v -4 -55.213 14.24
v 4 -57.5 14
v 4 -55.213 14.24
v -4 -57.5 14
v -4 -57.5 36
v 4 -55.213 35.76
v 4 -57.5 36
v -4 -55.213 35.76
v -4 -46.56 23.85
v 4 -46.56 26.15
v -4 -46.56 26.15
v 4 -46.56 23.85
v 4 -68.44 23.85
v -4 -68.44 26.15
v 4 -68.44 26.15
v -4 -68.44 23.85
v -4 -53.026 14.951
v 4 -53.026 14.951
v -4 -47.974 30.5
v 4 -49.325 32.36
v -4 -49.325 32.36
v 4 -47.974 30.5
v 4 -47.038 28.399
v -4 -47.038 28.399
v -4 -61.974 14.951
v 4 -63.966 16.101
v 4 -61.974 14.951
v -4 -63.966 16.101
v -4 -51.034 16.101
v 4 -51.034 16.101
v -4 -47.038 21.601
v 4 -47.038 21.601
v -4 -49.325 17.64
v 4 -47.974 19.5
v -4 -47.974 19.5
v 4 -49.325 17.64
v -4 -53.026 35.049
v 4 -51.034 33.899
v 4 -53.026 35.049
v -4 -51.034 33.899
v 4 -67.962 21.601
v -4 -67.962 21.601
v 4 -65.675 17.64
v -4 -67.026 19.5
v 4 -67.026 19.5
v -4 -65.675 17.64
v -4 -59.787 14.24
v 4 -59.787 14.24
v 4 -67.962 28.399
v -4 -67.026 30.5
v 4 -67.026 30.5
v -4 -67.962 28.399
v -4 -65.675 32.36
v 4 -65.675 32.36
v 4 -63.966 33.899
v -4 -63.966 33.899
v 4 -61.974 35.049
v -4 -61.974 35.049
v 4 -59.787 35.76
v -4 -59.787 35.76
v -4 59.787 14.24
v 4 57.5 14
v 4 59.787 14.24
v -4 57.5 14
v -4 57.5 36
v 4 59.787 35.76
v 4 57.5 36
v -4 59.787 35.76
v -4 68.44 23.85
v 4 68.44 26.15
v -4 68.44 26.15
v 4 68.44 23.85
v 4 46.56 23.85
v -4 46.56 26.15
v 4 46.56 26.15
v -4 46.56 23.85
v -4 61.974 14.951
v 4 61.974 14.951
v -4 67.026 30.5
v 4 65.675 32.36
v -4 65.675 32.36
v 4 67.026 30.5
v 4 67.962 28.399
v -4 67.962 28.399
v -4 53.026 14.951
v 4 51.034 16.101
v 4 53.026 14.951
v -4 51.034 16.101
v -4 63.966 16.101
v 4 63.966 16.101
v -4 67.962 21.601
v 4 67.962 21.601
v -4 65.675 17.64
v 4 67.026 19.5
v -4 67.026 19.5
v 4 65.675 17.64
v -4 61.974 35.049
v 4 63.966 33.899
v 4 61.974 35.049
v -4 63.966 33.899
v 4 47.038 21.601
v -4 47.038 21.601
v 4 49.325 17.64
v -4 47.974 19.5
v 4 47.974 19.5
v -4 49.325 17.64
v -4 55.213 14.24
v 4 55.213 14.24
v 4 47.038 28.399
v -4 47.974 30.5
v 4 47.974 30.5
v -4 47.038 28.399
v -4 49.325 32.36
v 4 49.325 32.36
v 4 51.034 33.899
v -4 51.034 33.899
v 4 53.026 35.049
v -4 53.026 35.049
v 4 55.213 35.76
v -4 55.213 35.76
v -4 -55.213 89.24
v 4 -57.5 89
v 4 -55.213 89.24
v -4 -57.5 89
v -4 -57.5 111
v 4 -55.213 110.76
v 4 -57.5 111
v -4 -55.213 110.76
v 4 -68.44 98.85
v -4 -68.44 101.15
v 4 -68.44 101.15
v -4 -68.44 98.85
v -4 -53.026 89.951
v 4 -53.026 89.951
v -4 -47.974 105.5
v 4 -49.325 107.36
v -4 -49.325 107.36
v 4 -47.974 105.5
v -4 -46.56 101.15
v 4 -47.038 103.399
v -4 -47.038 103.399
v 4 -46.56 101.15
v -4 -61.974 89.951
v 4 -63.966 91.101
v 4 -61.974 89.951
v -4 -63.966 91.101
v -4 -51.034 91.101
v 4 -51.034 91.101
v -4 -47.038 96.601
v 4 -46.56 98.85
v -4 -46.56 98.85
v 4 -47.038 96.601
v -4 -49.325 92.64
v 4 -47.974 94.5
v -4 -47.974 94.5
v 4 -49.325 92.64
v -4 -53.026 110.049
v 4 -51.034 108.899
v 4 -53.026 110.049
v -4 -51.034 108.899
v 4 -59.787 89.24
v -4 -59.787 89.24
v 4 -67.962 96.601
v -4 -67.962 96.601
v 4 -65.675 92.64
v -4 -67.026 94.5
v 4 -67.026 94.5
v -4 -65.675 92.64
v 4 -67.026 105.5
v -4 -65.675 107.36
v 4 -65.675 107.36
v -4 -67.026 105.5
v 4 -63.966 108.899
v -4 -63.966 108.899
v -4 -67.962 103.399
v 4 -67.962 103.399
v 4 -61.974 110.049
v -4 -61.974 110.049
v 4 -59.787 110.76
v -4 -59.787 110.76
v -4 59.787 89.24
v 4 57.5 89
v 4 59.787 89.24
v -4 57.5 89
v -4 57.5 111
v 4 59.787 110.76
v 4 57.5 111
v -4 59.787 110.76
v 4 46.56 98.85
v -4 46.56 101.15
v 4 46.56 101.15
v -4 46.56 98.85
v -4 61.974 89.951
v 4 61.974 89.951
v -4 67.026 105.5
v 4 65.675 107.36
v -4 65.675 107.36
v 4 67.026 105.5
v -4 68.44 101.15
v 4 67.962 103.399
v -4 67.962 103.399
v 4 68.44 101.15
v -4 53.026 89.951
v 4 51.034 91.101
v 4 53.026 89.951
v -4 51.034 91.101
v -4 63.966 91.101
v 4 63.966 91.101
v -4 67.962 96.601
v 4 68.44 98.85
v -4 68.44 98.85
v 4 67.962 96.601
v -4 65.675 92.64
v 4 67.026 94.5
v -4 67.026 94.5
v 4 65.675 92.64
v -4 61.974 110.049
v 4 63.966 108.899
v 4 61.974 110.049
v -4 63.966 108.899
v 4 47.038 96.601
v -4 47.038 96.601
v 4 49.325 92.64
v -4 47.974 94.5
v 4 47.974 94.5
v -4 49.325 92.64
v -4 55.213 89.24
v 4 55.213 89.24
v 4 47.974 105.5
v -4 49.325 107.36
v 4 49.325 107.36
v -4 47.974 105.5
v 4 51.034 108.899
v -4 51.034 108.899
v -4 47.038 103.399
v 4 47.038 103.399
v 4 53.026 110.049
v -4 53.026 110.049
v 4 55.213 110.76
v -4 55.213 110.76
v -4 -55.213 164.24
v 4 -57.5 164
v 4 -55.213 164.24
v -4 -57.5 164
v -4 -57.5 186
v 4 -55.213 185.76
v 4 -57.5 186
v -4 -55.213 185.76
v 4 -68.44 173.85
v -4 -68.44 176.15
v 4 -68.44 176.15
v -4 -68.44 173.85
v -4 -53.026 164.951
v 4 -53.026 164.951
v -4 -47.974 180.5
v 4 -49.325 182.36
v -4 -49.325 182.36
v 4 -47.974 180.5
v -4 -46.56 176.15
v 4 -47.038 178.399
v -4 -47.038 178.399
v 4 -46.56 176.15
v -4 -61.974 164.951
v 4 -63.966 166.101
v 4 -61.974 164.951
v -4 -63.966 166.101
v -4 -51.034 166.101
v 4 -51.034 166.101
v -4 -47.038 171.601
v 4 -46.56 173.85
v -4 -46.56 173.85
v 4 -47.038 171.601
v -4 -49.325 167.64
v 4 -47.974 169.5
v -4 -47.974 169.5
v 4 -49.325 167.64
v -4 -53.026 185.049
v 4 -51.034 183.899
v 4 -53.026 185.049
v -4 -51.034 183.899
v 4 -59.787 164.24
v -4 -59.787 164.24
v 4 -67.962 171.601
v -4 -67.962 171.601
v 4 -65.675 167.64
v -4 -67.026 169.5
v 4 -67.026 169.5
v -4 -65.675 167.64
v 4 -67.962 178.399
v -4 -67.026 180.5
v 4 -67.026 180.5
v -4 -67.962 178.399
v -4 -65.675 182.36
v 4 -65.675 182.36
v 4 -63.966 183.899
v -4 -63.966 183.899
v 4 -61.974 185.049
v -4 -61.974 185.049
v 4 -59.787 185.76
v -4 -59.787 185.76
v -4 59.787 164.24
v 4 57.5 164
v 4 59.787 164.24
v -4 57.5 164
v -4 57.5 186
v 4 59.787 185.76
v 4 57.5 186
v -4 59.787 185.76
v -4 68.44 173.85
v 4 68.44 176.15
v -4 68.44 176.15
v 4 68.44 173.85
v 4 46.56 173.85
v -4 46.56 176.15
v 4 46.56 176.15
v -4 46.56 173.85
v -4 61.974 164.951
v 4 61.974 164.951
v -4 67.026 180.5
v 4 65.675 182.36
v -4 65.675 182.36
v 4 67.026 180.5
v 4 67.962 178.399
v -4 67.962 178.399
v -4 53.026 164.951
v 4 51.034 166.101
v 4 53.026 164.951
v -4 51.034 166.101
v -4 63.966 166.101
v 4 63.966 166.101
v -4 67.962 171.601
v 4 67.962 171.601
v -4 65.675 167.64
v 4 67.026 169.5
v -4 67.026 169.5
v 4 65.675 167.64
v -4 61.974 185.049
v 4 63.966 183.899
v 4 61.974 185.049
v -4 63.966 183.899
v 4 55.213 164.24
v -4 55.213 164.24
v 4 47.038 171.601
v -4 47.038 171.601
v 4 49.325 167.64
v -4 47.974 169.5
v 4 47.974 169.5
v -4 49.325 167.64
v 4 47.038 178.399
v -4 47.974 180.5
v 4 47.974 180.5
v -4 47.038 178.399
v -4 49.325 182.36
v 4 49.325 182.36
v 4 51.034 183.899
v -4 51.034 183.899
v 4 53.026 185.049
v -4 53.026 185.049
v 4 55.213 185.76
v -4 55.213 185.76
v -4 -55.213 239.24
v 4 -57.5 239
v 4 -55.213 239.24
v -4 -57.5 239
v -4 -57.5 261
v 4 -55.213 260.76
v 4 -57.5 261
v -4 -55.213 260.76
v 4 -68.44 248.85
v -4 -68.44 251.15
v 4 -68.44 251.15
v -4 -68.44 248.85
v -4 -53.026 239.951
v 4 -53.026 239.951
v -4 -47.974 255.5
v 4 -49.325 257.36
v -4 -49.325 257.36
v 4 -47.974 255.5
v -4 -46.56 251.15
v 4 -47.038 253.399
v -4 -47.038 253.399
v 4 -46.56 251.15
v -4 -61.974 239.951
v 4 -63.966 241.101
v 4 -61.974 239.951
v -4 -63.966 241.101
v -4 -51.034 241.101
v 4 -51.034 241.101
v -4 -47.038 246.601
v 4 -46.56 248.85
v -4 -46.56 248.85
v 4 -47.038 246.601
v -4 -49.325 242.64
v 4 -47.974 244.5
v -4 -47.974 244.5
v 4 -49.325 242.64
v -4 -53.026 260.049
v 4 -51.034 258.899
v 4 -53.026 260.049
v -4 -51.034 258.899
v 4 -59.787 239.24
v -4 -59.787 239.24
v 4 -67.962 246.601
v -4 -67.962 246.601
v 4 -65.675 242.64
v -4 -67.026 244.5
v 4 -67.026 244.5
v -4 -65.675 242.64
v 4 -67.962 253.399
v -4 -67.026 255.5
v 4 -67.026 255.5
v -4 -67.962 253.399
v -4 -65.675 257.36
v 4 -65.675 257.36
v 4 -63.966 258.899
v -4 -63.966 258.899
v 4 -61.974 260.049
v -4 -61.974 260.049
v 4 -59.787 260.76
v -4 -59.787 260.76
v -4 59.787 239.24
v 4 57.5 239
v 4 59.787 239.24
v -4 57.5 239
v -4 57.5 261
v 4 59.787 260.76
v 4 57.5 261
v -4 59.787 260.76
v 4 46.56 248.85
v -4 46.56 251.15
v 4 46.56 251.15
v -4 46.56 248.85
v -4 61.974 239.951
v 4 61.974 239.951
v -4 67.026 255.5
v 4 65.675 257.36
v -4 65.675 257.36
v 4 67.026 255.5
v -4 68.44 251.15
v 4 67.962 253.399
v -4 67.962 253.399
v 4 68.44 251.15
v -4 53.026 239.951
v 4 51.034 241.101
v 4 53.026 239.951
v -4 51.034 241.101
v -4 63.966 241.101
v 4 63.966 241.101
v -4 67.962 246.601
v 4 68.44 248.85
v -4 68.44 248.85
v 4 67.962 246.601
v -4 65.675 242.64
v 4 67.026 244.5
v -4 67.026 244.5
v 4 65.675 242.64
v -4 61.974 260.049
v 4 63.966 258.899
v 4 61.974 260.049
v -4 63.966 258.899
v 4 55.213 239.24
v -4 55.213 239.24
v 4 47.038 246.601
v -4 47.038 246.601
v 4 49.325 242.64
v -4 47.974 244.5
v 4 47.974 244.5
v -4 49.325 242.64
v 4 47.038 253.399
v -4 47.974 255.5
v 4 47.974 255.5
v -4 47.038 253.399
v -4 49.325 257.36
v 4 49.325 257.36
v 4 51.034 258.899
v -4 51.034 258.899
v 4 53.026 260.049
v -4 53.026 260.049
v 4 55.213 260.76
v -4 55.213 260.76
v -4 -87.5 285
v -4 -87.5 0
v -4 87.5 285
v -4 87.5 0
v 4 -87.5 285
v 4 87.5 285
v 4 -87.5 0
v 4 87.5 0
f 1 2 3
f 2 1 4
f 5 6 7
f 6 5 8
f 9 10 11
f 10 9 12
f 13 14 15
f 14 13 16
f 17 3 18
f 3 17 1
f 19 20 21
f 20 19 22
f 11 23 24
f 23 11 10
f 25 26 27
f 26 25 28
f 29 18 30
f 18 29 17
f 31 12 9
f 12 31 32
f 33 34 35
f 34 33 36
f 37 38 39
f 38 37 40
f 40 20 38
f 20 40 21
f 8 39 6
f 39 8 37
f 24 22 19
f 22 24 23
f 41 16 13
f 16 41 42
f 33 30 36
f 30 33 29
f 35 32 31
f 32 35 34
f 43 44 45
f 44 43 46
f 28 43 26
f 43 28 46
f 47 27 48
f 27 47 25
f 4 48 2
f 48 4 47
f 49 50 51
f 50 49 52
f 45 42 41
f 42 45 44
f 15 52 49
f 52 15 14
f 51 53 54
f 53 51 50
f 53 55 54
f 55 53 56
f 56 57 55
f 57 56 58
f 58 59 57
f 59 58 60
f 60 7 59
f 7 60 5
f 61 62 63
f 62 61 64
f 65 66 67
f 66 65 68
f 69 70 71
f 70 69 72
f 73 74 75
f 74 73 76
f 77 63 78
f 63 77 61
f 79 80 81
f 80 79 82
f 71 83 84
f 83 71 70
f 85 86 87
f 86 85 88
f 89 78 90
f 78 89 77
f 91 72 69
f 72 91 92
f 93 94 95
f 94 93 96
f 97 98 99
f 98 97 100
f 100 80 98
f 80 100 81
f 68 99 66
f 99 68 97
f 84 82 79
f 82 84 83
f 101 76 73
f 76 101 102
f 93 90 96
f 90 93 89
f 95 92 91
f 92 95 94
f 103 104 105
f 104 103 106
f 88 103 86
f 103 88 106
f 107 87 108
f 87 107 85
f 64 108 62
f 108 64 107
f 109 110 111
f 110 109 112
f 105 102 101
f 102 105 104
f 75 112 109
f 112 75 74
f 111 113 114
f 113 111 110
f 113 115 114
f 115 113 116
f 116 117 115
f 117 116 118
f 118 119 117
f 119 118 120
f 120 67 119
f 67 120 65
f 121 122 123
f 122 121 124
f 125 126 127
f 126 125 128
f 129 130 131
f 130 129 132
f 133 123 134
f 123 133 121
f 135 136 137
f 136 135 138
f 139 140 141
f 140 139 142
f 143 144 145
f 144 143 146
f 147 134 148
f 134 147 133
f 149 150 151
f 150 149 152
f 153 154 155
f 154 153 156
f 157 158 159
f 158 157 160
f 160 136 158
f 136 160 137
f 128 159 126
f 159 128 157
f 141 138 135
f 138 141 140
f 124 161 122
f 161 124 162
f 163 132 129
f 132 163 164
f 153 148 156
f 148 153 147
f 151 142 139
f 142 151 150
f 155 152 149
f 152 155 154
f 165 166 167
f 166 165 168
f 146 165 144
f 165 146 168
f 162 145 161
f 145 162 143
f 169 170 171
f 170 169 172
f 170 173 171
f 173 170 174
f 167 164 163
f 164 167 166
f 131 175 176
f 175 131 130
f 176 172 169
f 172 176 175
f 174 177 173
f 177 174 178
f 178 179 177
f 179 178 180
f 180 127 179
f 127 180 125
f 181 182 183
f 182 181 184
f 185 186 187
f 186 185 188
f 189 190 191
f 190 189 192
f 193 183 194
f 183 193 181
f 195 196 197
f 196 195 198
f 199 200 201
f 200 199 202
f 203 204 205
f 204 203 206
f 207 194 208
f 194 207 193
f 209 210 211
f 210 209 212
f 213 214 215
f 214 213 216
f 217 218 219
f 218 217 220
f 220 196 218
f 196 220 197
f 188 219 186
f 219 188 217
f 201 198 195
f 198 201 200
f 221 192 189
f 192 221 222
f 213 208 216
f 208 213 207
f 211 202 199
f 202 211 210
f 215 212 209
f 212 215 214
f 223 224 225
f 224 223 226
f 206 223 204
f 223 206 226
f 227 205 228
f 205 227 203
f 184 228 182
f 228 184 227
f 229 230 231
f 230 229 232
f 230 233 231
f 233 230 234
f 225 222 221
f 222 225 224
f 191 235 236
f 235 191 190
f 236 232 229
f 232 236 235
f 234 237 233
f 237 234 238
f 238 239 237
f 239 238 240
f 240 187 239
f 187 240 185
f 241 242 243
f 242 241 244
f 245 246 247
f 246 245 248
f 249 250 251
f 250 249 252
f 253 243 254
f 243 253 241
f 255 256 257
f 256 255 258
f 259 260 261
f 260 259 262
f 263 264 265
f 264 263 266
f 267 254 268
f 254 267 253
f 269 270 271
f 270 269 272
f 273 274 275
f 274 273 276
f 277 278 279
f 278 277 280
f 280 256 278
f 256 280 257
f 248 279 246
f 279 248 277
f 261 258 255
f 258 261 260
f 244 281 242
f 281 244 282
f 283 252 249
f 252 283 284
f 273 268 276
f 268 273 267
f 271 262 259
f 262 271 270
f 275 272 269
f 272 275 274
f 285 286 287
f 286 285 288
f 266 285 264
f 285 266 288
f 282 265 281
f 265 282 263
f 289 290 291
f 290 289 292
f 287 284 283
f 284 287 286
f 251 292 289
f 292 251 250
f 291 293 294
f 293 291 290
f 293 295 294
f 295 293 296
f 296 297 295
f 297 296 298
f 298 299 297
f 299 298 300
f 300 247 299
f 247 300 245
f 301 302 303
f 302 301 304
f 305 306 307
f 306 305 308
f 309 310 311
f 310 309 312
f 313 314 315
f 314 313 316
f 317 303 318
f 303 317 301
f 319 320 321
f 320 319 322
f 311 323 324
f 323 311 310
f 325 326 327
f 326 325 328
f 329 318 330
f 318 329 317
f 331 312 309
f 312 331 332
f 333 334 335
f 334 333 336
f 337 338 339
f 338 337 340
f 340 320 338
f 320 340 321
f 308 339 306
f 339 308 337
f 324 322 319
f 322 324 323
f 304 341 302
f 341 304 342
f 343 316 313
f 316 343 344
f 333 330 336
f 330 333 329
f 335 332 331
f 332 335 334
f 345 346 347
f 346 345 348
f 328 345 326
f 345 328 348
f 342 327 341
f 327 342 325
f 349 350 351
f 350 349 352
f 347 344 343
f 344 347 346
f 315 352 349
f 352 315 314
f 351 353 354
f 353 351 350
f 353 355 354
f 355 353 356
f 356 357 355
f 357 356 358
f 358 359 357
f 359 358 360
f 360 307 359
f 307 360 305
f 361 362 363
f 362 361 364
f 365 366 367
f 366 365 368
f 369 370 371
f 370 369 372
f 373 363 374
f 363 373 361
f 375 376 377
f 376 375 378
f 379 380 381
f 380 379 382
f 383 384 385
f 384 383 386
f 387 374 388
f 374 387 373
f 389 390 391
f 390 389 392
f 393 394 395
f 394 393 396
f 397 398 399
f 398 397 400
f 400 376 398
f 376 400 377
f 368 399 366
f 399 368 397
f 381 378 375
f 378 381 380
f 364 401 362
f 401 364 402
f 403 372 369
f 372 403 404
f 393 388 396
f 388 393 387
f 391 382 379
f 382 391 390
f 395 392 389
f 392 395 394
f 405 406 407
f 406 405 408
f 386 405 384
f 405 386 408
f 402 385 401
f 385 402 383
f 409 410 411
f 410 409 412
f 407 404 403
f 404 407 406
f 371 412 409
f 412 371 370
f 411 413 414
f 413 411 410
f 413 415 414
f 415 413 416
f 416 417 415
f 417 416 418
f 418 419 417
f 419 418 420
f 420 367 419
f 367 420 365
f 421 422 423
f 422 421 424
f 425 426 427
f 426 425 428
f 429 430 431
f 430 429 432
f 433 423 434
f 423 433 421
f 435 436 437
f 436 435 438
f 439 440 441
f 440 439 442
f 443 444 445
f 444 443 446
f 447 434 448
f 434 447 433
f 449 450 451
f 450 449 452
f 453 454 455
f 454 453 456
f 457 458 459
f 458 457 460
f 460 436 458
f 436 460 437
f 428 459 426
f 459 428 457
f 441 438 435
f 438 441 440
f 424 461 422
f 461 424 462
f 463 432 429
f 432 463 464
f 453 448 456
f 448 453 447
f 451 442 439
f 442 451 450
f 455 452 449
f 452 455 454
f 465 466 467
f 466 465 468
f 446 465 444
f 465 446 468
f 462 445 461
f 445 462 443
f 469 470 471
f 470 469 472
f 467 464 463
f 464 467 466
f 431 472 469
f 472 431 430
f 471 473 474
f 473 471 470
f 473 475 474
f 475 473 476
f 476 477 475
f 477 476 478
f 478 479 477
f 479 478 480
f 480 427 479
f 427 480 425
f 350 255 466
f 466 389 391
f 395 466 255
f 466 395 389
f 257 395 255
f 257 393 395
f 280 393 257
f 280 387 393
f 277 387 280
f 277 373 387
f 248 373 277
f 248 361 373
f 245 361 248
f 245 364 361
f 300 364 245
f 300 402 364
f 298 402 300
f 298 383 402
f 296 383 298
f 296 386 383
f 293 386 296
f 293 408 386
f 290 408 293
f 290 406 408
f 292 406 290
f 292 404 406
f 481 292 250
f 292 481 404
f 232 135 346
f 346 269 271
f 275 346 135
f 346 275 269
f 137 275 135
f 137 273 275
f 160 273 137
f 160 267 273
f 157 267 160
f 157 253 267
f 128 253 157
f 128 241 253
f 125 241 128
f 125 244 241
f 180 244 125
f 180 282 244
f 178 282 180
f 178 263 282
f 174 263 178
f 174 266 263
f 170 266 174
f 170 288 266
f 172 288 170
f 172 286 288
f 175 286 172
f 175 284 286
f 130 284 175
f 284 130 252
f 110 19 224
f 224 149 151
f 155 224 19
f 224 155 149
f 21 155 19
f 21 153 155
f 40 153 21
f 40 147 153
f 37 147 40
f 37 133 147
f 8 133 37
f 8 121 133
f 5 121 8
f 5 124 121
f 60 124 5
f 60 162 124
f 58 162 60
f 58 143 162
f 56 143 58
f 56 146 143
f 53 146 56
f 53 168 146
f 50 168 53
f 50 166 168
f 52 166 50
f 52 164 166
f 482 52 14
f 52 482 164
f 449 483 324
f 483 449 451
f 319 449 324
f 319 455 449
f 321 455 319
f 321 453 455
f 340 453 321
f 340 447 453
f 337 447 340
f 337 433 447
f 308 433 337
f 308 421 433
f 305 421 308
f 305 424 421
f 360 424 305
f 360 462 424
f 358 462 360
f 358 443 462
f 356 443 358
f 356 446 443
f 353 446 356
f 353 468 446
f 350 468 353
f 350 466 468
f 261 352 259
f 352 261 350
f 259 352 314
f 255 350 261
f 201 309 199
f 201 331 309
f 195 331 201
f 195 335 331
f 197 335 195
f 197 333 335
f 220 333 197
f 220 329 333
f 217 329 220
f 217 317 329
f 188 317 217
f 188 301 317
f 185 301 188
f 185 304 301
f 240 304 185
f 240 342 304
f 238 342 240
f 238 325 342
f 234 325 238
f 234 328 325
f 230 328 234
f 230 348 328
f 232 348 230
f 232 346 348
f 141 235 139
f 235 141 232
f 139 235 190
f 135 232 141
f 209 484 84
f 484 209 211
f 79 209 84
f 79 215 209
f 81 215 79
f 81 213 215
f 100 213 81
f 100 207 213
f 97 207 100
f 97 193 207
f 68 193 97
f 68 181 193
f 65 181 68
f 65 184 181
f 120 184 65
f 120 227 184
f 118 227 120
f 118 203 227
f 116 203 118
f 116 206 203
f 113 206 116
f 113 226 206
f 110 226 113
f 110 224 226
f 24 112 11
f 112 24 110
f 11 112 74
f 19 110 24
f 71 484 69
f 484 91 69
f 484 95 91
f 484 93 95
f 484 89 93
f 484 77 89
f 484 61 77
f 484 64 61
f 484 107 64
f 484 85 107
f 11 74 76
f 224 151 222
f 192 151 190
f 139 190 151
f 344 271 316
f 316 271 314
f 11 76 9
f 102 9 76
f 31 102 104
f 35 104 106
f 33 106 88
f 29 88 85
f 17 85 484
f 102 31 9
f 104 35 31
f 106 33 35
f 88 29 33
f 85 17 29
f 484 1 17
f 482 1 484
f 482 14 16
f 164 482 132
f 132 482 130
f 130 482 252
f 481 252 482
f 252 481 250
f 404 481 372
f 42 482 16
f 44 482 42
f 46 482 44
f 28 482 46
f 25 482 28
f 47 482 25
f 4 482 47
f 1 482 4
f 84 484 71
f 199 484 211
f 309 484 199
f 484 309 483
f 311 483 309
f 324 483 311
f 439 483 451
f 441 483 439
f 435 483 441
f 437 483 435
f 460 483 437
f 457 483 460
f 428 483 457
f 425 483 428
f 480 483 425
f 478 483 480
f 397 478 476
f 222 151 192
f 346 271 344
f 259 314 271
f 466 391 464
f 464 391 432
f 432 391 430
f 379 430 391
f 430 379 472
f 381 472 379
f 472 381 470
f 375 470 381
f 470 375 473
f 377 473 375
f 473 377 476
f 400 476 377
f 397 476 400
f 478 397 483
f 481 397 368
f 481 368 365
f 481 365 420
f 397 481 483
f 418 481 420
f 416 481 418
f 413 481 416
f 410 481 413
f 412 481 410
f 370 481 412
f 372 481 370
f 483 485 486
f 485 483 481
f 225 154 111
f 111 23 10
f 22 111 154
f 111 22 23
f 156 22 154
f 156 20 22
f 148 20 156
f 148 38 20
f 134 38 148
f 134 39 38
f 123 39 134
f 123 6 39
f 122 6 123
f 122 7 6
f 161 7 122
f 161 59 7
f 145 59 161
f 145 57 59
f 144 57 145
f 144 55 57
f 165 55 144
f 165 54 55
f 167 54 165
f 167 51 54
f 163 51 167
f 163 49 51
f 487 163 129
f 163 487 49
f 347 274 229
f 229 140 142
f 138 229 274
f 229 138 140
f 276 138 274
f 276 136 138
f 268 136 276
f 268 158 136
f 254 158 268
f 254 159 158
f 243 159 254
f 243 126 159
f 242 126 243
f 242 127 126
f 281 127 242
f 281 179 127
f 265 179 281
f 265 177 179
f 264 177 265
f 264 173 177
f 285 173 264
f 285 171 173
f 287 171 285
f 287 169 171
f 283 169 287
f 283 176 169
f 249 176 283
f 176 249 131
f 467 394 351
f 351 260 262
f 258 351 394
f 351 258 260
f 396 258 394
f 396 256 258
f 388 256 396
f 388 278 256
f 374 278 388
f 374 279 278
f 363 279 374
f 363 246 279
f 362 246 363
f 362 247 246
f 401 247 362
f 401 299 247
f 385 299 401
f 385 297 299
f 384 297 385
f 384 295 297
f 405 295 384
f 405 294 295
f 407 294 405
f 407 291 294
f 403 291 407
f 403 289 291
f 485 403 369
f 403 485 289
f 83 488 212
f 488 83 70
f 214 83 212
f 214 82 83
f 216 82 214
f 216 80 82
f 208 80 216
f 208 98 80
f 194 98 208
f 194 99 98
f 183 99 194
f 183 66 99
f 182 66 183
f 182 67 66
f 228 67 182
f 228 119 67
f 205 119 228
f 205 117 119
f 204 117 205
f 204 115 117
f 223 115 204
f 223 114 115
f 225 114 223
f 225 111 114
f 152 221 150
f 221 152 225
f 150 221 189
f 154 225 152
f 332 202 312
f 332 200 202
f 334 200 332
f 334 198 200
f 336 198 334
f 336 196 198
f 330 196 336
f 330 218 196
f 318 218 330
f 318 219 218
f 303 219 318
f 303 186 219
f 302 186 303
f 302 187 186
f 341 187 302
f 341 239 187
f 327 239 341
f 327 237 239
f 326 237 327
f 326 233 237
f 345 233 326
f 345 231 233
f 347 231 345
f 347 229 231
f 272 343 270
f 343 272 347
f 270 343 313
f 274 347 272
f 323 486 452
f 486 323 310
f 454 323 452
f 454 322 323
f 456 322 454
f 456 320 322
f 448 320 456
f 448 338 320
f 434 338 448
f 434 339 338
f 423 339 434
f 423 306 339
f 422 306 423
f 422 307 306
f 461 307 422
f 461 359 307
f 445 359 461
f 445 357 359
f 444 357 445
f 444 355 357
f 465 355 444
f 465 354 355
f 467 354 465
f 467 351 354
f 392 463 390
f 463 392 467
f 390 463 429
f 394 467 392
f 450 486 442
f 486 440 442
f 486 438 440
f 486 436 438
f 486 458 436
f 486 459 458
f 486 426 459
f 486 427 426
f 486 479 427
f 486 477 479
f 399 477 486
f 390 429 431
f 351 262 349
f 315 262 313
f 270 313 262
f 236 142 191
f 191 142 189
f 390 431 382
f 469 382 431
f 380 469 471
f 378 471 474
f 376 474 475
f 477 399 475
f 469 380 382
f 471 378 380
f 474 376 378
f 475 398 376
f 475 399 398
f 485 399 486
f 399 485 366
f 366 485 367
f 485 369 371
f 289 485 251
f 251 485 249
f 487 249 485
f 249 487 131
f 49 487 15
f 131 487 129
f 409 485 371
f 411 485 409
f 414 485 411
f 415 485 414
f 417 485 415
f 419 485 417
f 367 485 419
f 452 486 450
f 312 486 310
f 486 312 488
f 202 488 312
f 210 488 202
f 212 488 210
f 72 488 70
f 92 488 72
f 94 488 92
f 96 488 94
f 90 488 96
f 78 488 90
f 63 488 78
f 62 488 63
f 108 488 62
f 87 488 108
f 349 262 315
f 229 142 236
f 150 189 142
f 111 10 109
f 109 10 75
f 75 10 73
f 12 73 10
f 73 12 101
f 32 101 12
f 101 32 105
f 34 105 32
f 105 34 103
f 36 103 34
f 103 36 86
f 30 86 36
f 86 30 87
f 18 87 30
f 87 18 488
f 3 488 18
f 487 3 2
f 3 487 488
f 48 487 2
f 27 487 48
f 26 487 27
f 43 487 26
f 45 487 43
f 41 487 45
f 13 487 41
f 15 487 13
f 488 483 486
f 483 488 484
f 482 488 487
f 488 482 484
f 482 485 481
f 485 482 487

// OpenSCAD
// file: params.scad
// Global Parameters for the IKEA brace

// The Wide Flange is a W250x67

WF_b = 204;    // flange width
WF_t = 15.7;   // flange thickness
WF_d = 257;    // total depth
WF_w = 8.9;    // web thickness
WF_k = 36;     // "k" distance (outside of flange to toe of fillet)
// WF_L = undef;    // total length of W  (see below)

WF_cut_radius = 300;   // radius of flange cut
WF_flange_cut = 40;    // width cut from each flange
// WF_start_cut = undef;  // distance to start of flange cut (see below)
// WF_g = undef;          // bolt gauge  (see below)

// The angles are L102x76x13, short leg bolted to web, long leg outstanding

L_d = 102;     // leg size, out from web
L_b = 76.2;    // leg size, parallel to web
L_t = 12.7;    // leg thickness
L_dg = 65;     // gauge, out from web
L_bg = 45;     // gauge, parallel to web - for bolts through web


// Bolts
Bolt_d = 22;     // bolt hole diameter (actual, not allowance)
Bolt_e = 35;     // end distances
Bolt_n = 4;      // number of bolts each end of angle
Bolt_s = 75;     // bolt spacing

// Gusset Plate
Gusset_t = 25;     // gusset thickness
Gusset_e = Bolt_e;     // edge distance to first bolt
Gusset_gap = 5;       // between gusset plate and end of W
// Gusset_g = undef;    // gusset gauge - see below

// Web Plates (reinforcing)
Plate_t = 8;       // plate thickness
Plate_W = 175;     // plate width
Plate_setback = 10;   // setback from end of web for welding
Plate_L = (Bolt_n-1)*Bolt_s + Bolt_e + Bolt_e - Plate_setback;      // plate length

WF_L = 800;                   // length of W
WF_g = Gusset_t + 2*L_bg;      // gauge distance on WF web
Gusset_g = WF_w + 2*Plate_t + 2*L_dg;    // gauge distance on gusset plate
WF_start_cut = Plate_L + 0;   // start cutting flange this far from big end

WF_T = WF_d - WF_k*2;         // "T" distance - inside of fillet toes = d-2k
if( Plate_W+10 > WF_T ) {
    echo( "Web plate too wide.  Max is", WF_T-10 );
}
w = Gusset_t + L_b*2;         // out-to-out of angles
if( w > WF_T ) {
    echo( "Angles+gusset too wide.  Reduce by", w-WF_T, "Max angle leg is",(WF_T-Gusset_t)/2 );
}

// echo("WF_g =", WF_g, "(gauge on web and gusset)");
// main file
// reinforcing plate on web, 2 required.

include <params.scad>;

d = Bolt_d;     // hole diameter
g = WF_g;    // gauge, across 
e1 = Bolt_e - Plate_setback;    // end distance, at end of WF
s = Bolt_s;   // pitch
n = Bolt_n;     // number of transverse lines of bolts-

T = Plate_t;      // thickness of plate
W = Plate_W;    // width of plate
L = Plate_L;   // length of plate

render() {
    difference() {
        translate([0,0,L/2]) cube( [T,W,L], center=true );
        
        for (i = [0:n-1]) {        // the holes
            translate([0,-g/2,e1+i*s]) {
                rotate([0,90,0]) { 
                    cylinder(h=100,d=d,center=true); }}
            translate([0,g/2,e1+i*s]) {
                rotate([0,90,0]) { 
                    cylinder(h=100,d=d,center=true); }}
        }
    }
}
